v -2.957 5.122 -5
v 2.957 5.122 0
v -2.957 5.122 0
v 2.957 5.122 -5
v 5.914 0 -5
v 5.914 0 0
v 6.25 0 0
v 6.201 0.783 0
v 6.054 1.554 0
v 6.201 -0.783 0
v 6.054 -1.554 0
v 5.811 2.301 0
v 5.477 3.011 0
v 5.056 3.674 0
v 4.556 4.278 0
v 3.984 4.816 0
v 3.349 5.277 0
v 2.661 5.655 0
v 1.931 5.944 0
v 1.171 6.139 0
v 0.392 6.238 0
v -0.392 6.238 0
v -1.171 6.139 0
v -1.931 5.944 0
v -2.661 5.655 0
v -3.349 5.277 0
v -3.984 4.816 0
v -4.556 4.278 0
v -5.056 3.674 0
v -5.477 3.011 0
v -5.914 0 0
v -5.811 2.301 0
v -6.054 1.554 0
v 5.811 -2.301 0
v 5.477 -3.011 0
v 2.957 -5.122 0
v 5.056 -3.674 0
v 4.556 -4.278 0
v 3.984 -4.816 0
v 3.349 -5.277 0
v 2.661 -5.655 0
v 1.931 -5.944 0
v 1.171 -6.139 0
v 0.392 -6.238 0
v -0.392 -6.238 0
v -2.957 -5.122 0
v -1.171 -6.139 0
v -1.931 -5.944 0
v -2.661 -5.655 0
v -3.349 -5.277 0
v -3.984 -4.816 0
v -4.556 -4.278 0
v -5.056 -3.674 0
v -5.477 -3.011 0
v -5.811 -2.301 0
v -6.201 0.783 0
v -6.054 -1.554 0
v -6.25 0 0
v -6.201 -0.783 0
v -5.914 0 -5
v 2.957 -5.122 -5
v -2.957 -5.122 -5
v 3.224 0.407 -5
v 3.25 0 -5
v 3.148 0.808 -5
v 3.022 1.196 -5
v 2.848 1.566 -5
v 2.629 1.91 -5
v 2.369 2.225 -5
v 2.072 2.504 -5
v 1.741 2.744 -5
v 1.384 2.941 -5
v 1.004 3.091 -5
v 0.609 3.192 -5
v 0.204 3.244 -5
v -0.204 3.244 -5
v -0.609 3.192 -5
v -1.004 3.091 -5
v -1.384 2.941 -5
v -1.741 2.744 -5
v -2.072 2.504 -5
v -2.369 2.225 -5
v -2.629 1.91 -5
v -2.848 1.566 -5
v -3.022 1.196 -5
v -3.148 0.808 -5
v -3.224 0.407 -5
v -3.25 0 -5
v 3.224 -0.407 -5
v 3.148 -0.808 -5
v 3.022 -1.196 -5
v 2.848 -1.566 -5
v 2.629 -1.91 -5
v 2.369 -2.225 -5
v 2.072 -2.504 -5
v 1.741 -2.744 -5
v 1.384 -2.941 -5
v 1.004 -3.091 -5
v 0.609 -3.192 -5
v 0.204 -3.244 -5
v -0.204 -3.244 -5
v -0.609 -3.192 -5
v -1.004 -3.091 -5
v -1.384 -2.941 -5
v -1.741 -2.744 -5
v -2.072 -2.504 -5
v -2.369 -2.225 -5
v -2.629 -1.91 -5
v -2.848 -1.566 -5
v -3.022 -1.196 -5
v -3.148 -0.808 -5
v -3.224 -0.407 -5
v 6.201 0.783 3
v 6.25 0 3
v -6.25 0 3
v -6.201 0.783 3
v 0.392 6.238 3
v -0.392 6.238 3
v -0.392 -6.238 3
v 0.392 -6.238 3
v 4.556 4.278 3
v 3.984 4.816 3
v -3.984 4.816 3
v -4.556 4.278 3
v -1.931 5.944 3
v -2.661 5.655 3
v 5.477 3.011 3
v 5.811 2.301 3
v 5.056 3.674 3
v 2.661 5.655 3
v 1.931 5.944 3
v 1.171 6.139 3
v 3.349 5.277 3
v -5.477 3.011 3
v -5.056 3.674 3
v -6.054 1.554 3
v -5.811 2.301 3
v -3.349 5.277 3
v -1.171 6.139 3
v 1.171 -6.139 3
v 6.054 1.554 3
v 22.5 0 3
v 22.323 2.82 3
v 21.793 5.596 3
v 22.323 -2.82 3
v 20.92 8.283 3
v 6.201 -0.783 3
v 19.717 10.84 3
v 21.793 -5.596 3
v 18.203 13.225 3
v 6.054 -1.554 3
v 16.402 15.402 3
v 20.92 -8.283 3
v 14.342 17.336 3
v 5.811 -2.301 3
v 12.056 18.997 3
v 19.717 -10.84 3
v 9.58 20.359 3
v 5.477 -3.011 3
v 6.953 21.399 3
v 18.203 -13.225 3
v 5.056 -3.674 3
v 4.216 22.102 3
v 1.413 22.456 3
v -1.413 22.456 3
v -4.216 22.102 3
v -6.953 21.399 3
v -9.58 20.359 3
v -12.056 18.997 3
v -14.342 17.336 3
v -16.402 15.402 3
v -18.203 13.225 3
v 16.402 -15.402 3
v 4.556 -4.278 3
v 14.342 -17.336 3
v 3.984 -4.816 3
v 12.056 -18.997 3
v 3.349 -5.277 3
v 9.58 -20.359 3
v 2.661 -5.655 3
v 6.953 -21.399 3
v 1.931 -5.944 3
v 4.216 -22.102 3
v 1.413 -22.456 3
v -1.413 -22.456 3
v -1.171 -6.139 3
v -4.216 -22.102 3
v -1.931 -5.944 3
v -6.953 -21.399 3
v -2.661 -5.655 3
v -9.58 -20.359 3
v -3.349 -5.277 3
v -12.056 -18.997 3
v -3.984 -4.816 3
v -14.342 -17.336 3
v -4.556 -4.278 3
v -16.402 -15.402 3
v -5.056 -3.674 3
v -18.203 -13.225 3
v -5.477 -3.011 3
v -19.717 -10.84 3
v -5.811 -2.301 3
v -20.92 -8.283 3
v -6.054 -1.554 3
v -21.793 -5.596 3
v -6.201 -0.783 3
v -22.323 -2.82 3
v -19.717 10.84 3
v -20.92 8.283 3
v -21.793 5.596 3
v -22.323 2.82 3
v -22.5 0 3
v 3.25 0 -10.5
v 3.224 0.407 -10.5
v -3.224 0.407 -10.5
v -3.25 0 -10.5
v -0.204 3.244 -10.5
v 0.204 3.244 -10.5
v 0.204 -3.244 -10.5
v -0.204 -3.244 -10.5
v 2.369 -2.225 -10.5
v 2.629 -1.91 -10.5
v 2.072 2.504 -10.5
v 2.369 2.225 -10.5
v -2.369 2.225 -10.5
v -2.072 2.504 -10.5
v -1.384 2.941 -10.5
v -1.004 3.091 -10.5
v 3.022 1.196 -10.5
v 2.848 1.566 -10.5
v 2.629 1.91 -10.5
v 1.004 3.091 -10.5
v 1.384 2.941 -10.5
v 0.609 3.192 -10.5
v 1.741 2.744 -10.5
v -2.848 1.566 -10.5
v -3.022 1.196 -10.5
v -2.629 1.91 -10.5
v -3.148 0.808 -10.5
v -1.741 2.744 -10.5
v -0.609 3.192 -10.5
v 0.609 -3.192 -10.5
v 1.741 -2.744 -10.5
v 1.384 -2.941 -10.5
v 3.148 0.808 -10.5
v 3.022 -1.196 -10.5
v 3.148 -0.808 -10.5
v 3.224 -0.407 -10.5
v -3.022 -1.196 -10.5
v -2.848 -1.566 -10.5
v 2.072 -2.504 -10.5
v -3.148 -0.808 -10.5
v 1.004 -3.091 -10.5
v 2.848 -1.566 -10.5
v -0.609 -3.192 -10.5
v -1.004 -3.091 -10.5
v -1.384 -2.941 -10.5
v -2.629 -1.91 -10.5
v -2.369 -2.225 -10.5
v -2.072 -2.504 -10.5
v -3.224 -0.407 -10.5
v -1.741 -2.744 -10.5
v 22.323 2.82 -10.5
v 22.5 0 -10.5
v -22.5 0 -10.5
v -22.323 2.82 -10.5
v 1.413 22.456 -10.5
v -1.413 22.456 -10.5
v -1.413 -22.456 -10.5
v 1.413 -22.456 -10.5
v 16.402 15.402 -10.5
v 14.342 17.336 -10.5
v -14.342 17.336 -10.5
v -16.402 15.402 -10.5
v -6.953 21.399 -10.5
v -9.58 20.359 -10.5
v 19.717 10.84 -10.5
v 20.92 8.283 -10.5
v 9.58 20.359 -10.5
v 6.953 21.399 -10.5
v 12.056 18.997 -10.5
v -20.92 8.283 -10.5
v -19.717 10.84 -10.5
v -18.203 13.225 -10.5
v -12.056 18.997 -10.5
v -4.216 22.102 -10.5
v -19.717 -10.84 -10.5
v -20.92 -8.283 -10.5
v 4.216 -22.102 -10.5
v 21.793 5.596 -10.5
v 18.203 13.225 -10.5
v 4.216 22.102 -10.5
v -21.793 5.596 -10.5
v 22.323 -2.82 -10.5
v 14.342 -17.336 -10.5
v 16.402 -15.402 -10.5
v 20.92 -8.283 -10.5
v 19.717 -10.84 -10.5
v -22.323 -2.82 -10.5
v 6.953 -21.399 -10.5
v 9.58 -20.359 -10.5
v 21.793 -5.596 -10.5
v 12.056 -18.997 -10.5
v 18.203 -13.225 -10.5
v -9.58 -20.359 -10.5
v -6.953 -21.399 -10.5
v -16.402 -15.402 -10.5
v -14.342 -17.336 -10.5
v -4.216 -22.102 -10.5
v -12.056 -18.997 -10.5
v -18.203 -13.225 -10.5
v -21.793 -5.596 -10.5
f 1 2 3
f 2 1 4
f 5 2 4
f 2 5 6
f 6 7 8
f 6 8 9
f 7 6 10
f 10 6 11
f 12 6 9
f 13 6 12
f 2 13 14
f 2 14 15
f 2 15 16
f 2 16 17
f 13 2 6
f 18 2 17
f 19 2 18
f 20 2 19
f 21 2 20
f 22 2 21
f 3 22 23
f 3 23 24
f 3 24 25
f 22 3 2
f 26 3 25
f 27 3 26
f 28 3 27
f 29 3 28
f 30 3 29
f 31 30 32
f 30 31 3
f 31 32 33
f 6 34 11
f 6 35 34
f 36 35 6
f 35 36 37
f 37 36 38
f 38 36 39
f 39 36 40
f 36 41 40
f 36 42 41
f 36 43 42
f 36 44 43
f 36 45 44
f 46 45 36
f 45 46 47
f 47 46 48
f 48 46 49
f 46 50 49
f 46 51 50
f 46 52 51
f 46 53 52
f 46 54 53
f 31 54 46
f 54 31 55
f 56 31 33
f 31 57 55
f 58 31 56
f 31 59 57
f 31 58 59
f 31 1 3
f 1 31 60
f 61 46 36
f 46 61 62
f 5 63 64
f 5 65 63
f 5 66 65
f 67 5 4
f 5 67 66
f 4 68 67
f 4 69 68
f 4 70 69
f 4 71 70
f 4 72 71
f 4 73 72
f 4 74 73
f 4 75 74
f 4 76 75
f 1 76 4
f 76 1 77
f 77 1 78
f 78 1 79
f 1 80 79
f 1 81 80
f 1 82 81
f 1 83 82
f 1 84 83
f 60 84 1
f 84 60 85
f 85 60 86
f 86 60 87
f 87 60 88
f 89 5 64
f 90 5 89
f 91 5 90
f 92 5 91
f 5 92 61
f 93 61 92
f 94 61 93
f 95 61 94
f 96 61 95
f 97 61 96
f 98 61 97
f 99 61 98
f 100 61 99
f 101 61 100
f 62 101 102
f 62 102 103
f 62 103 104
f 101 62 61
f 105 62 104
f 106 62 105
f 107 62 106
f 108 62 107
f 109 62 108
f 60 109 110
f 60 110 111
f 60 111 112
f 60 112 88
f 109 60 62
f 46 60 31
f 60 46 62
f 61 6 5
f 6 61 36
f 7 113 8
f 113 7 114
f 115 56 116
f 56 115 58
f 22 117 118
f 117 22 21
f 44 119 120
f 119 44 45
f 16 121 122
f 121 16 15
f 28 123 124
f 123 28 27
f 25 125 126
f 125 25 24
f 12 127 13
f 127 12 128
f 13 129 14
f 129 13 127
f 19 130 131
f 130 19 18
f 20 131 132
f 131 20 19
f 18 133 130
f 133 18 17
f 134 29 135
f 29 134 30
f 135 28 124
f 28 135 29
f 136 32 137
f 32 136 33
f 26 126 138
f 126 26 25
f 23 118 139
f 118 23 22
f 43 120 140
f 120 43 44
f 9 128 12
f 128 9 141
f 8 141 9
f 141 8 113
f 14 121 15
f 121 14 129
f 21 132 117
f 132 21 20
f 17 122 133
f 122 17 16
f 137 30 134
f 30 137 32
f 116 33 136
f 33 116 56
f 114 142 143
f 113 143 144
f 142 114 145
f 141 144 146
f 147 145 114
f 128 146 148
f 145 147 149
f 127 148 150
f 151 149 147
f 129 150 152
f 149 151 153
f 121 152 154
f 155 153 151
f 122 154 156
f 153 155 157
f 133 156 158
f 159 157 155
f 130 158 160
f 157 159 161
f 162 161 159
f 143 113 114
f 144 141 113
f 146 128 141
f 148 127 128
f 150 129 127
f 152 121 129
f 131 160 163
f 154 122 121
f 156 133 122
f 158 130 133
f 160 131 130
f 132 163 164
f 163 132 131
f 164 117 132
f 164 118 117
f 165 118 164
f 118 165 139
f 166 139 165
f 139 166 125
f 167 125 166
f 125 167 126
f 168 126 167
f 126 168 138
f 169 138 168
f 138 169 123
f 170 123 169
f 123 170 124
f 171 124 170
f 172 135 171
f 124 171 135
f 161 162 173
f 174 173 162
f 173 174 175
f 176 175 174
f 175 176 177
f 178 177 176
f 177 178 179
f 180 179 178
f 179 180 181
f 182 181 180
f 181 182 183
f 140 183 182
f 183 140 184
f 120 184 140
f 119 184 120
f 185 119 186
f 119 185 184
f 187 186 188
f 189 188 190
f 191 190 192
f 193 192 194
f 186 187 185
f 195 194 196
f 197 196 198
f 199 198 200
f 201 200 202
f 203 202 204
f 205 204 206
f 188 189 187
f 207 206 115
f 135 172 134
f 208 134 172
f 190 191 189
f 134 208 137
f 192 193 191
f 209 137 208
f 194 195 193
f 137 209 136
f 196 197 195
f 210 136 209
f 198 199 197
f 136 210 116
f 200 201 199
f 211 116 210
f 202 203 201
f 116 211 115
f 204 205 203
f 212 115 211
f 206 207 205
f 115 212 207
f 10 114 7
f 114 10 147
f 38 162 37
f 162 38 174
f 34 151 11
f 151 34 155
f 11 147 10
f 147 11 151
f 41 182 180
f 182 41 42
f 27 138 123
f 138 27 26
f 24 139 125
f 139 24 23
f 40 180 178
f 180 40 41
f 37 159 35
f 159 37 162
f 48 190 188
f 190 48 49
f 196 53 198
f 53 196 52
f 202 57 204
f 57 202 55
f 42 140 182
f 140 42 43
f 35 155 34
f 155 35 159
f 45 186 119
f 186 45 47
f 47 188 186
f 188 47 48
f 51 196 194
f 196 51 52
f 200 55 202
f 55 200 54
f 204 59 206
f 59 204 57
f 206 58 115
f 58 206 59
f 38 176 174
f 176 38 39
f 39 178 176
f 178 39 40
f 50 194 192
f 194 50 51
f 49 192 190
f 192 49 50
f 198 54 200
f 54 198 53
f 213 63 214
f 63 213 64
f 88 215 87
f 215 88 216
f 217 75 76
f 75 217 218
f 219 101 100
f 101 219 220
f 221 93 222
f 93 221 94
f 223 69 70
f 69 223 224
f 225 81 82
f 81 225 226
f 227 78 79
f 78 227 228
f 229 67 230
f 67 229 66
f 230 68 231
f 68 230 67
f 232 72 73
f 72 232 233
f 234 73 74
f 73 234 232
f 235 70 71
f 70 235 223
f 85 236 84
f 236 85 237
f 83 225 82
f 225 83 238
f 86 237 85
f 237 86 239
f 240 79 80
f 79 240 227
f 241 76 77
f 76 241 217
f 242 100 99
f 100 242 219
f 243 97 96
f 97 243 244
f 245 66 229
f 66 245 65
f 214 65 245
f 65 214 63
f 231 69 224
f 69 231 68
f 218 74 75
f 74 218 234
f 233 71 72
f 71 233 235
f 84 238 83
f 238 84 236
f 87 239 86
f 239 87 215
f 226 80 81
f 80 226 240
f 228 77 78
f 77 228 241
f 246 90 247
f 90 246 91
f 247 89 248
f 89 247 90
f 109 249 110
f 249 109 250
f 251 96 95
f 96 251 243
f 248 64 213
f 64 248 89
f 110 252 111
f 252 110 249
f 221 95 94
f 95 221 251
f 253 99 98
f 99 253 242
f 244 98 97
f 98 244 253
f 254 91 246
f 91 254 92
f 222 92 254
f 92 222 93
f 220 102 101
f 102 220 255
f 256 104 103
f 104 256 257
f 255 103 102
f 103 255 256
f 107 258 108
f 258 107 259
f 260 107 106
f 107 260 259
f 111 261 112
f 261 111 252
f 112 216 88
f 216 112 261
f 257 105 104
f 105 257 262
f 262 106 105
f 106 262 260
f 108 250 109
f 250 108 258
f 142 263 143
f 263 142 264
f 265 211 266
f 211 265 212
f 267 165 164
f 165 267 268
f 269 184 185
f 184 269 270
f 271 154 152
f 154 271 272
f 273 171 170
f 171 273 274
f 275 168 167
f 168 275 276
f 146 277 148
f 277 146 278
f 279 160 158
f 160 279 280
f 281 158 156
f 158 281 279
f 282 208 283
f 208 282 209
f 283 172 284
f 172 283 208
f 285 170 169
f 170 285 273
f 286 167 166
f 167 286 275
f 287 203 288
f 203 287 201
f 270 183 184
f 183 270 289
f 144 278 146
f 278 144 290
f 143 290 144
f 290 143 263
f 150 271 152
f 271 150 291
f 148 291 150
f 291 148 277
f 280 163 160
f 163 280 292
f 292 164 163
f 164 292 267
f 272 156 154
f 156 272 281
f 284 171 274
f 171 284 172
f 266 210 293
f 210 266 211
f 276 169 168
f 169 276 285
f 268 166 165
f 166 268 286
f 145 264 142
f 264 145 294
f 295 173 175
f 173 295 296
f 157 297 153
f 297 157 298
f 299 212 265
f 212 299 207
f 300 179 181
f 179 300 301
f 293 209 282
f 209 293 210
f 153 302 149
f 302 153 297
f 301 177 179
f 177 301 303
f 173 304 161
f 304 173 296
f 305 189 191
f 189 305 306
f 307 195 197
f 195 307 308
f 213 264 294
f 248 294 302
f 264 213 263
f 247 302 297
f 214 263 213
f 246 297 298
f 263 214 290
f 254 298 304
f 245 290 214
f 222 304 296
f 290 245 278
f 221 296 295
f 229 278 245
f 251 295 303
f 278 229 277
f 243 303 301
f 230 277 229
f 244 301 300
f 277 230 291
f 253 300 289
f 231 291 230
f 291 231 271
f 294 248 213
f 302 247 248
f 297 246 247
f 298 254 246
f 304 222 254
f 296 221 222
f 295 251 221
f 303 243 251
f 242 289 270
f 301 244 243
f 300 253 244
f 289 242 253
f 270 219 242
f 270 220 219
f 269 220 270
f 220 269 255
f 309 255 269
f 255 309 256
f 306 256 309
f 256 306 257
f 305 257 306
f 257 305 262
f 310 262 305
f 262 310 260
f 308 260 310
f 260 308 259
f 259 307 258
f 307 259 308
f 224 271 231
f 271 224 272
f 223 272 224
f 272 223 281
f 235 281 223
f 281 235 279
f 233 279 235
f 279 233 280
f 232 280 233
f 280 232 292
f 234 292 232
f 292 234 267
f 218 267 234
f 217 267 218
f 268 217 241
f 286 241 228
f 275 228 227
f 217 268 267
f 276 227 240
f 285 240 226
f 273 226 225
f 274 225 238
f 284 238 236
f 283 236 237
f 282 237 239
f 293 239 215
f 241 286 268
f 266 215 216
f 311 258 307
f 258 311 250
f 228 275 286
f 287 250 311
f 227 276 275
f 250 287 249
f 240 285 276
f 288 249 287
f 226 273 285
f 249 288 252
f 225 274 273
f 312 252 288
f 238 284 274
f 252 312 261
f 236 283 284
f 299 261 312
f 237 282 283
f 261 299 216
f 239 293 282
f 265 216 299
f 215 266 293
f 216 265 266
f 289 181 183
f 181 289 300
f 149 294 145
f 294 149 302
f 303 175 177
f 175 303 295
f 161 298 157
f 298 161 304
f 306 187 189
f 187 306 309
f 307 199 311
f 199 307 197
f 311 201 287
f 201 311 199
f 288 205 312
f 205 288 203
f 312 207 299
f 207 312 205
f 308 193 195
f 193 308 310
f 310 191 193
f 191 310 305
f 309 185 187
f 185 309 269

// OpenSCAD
$fn = 50;

difference() {
	union() {
		translate(v = [0, 0, -10.5]) {
			cylinder(h = 13.5, r = 22.5);
		}
	}
	union() {
		translate(v = [0, 0, 0]) {
			rotate(a = [0, 0, 0]) {
				difference() {
					union() {
						translate(v = [0, 0, -5]) {
							linear_extrude(height = 5) {
								polygon(points = [[5.914249999999999, 0.0], [2.957125, 5.1218907443321156], [-2.9571249999999982, 5.1218907443321156], [-5.914249999999999, 7.242867331857232e-16], [-2.9571250000000022, -5.121890744332115], [2.9571249999999956, -5.121890744332118]]);
							}
						}
					}
					union();
				}
			}
		}
		#cylinder(h = 3, r = 6.25);
		#translate(v = [0, 0, -100.0]) {
			cylinder(h = 200, r = 3.25);
		}
	}
}
